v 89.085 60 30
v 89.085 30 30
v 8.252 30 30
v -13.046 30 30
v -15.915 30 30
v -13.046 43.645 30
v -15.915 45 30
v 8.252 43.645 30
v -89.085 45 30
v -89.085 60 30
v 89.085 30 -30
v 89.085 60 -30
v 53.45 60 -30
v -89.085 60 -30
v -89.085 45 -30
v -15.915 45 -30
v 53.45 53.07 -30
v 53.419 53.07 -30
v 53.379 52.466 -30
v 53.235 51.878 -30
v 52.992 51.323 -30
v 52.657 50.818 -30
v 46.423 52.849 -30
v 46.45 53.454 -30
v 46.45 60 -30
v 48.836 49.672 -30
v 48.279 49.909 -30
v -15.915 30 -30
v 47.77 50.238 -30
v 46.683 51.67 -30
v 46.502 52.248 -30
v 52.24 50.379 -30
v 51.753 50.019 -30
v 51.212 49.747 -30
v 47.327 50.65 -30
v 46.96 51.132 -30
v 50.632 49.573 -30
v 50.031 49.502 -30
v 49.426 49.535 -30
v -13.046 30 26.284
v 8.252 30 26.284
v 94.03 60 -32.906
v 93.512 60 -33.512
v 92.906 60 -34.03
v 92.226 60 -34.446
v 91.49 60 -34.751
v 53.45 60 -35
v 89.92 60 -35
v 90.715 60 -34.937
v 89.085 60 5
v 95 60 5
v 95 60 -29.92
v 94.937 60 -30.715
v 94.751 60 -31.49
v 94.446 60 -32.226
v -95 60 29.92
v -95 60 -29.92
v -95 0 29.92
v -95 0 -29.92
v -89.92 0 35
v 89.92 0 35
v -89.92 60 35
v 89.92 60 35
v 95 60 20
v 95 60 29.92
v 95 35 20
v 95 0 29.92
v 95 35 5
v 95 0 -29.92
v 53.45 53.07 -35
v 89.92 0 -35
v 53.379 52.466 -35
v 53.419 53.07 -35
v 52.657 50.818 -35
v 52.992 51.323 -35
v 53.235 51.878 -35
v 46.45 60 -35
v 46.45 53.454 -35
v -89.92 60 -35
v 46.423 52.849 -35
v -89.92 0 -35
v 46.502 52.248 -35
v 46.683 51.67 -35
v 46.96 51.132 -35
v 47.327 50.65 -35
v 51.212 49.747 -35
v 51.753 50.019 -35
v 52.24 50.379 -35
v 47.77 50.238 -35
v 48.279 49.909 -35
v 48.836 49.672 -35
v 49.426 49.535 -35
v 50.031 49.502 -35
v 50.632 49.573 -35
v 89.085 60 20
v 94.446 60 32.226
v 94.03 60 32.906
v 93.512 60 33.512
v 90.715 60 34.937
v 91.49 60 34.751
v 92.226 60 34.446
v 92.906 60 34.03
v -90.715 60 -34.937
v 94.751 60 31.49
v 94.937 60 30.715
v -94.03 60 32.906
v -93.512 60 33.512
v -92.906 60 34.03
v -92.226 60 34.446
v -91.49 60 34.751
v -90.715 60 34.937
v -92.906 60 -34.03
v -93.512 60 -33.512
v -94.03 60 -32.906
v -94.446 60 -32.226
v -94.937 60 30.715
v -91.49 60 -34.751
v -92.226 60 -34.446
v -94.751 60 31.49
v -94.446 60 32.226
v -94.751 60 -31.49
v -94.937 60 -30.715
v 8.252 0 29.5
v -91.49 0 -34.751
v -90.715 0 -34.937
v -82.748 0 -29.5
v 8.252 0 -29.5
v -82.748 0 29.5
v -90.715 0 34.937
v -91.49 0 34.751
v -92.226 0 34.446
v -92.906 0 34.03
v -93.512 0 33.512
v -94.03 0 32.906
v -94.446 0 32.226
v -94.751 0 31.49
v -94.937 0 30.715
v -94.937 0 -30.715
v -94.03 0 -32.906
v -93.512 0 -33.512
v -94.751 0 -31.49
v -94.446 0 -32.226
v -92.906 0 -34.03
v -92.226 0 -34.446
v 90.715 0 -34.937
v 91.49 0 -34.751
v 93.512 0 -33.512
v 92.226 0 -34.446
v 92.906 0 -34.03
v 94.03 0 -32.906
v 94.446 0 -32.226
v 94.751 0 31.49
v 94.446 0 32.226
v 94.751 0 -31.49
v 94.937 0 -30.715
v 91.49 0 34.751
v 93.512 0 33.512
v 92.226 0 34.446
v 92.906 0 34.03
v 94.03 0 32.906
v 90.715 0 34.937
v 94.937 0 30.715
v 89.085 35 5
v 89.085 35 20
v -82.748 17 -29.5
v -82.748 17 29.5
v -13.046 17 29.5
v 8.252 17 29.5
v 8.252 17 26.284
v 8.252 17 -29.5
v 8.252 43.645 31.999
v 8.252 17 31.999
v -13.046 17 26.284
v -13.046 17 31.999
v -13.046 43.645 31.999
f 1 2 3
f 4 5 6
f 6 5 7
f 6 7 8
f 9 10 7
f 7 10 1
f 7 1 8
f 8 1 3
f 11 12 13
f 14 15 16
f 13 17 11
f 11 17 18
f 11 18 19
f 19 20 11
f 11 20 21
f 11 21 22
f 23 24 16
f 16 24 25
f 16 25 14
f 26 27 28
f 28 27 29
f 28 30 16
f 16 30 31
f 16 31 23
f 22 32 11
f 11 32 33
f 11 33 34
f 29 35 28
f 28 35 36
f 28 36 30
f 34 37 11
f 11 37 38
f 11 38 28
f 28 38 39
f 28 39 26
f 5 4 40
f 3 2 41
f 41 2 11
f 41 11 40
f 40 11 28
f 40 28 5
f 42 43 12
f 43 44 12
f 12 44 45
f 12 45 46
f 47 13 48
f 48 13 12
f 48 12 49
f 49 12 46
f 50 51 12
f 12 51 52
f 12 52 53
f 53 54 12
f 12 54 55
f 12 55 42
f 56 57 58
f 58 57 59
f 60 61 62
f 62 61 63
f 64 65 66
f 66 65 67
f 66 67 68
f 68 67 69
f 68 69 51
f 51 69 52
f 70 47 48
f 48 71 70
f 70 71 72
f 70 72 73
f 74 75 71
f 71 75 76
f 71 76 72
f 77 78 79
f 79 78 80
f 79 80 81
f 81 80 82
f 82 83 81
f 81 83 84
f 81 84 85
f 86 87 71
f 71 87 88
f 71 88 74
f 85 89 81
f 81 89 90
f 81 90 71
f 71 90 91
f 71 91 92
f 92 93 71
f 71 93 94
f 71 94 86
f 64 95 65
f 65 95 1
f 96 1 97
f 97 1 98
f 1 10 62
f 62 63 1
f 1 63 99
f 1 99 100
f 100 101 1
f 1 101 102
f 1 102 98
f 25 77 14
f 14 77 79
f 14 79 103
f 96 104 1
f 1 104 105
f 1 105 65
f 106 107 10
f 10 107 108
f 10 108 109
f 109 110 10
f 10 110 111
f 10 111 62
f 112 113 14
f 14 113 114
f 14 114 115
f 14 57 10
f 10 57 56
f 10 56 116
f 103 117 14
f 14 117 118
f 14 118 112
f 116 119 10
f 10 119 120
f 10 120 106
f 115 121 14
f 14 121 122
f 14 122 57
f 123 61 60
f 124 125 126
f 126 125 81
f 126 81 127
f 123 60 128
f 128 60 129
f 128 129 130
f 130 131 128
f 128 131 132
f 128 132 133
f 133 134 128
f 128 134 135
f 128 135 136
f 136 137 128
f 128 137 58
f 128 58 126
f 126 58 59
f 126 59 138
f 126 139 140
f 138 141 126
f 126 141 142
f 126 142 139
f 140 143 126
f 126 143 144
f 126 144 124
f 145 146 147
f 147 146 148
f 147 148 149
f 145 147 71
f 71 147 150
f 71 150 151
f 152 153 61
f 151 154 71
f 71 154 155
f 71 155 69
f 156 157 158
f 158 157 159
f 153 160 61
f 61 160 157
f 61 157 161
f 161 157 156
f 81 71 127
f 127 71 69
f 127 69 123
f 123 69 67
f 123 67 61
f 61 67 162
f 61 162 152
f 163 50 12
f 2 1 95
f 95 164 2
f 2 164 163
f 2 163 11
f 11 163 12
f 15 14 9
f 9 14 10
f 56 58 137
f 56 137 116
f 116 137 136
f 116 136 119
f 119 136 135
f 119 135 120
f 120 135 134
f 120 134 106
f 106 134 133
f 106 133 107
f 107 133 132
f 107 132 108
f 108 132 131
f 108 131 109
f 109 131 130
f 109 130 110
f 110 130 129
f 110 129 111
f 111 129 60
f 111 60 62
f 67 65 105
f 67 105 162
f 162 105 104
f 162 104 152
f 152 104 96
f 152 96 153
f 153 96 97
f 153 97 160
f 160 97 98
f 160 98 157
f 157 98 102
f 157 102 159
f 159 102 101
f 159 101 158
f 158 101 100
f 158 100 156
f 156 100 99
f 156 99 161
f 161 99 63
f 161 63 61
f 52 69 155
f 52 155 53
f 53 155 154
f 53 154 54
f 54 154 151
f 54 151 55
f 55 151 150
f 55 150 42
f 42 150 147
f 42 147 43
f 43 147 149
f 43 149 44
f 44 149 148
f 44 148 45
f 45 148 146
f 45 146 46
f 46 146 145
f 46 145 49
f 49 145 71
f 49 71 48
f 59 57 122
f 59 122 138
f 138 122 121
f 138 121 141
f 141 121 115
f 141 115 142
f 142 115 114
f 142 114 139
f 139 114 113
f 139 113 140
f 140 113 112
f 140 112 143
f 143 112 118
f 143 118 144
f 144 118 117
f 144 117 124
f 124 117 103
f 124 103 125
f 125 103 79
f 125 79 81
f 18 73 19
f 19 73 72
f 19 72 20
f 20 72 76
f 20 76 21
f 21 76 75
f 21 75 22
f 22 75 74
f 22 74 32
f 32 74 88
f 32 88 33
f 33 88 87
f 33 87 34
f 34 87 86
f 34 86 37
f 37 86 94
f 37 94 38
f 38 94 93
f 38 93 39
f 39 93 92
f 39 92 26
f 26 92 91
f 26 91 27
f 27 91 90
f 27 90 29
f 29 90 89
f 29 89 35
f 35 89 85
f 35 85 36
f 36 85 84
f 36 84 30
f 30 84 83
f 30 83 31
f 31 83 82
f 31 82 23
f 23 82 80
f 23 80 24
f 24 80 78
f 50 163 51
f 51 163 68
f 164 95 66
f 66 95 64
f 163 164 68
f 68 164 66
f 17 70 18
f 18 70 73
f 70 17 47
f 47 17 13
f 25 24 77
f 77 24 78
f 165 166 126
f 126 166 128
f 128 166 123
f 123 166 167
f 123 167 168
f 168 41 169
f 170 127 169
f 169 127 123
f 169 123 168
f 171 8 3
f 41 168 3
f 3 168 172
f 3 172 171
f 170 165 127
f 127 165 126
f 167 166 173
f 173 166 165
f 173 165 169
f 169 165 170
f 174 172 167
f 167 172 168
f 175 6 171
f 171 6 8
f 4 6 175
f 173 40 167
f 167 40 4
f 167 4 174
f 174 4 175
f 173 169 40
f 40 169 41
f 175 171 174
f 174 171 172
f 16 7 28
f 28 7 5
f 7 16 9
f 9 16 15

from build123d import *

# Parameters (mm, degrees)
SKETCH1_W           = 190
SKETCH1_H           = 70
BOSS_EXTRUDE1_DEPTH = 60
SKETCH2_W           = 178.169104448
SKETCH2_H           = 60
CUT_EXTRUDE1_DEPTH  = 50
FILLET2_R           = 5.08
SKETCH5_R           = 3.5
CUT_EXTRUDE3_DEPTH  = 11.210906631
SKETCH6_W           = 179.69669377
SKETCH6_H           = 60
BOSS_EXTRUDE3_DEPTH = 20
SKETCH7_W           = 15
SKETCH7_H           = 33.02
CUT_EXTRUDE4_DEPTH  = 16.51
SKETCH9_W           = 7
SKETCH9_H           = 5
CUT_EXTRUDE5_DEPTH  = 6.929984537
SKETCH11_W          = 91
SKETCH11_H          = 59
CUT_EXTRUDE6_DEPTH  = 17
SKETCH13_W          = 21.297722751
SKETCH13_H          = 5.714951011
CUT_EXTRUDE7_DEPTH  = 26.645395744
SKETCH16_W          = 73.169104448
SKETCH16_H          = 60
BOSS_EXTRUDE9_DEPTH = 15


with BuildPart() as part:
    # Sketch1 → Boss-Extrude1 (new body)
    with BuildSketch(Plane(origin=(0, 0, 0), x_dir=(1, 0, 0), z_dir=(0, 1, 0))):
        Rectangle(SKETCH1_W, SKETCH1_H)
    extrude(amount=BOSS_EXTRUDE1_DEPTH)

    # Sketch2 → Cut-Extrude1 (cut)
    with BuildSketch(Plane(origin=(0, 60, 0), x_dir=(1, 0, 0), z_dir=(0, 1, 0))):
        Rectangle(SKETCH2_W, SKETCH2_H)
    extrude(amount=-CUT_EXTRUDE1_DEPTH, mode=Mode.SUBTRACT)

    # Fillet2
    fillet2_edges = [part.edges().sort_by_distance(p)[0] for p in [
        (-95, 30, -35),
        (95, 30, -35),
        (95, 30, 35),
        (-95, 30, 35),
    ]]
    fillet(fillet2_edges, radius=FILLET2_R)

    # Sketch5 → Cut-Extrude3 (cut)
    with BuildSketch(Plane(origin=(0, 0, -35), x_dir=(-1, 0, 0), z_dir=(0, 0, -1))):
        with Locations((-49.92, 53)):
            Circle(SKETCH5_R)
    extrude(amount=-CUT_EXTRUDE3_DEPTH, mode=Mode.SUBTRACT)

    # Sketch6 → Boss-Extrude3 (add)
    with BuildSketch(Plane(origin=(0, 10, 0), x_dir=(1, 0, 0), z_dir=(0, 1, 0))):
        with Locations((-0.763794661, 0)):
            Rectangle(SKETCH6_W, SKETCH6_H)
    extrude(amount=BOSS_EXTRUDE3_DEPTH)

    # Sketch7 → Cut-Extrude4 (cut)
    with BuildSketch(Plane.ZY.offset(-89.084552224)):
        with Locations((12.5, 51.51)):
            Rectangle(SKETCH7_W, SKETCH7_H)
    extrude(amount=-CUT_EXTRUDE4_DEPTH, mode=Mode.SUBTRACT)

    # Sketch9 → Cut-Extrude5 (cut)
    with BuildSketch(Plane(origin=(4.741106384, 60, 0), x_dir=(1, 0, 0), z_dir=(0, 1, 0))):
        with Locations((45.208400252, 32.5)):
            Rectangle(SKETCH9_W, SKETCH9_H)
    extrude(amount=-CUT_EXTRUDE5_DEPTH, mode=Mode.SUBTRACT)

    # Sketch11 → Cut-Extrude6 (cut)
    with BuildSketch(Plane.XZ):
        with Locations((-37.248482646, 0)):
            Rectangle(SKETCH11_W, SKETCH11_H)
    extrude(amount=-CUT_EXTRUDE6_DEPTH, mode=Mode.SUBTRACT)

    # Sketch13 → Cut-Extrude7 (cut)
    with BuildSketch(Plane.XZ.offset(-17)):
        with Locations((-2.397344022, 29.141507707)):
            Rectangle(SKETCH13_W, SKETCH13_H)
    extrude(amount=-CUT_EXTRUDE7_DEPTH, mode=Mode.SUBTRACT)

    # Sketch16 → Boss-Extrude9 (add)
    with BuildSketch(Plane(origin=(0, 30, 0), x_dir=(1, 0, 0), z_dir=(0, 1, 0))):
        with Locations((-52.5, 0)):
            Rectangle(SKETCH16_W, SKETCH16_H)
    extrude(amount=BOSS_EXTRUDE9_DEPTH)


solid = part.part
